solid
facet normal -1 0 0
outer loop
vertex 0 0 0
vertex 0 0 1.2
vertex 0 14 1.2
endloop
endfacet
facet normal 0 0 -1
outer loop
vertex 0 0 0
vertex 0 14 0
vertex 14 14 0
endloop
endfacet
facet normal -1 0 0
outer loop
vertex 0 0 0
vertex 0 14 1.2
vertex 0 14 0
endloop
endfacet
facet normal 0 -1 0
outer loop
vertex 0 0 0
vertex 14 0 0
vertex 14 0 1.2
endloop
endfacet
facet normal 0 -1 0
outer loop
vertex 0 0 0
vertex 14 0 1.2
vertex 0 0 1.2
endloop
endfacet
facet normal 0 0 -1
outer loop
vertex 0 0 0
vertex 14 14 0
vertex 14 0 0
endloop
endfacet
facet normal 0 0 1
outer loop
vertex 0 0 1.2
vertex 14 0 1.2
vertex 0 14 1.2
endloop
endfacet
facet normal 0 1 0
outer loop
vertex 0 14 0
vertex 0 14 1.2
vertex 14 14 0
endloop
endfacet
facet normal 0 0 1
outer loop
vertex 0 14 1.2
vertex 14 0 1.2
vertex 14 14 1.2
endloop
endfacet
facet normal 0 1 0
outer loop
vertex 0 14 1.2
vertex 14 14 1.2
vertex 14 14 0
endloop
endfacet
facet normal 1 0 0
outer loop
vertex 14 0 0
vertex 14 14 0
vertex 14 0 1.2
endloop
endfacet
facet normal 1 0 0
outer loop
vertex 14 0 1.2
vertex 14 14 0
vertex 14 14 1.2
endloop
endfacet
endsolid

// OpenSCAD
/* Warning, this is a very basic generator with a lot of approximation 
input data : [TFBGA, 4BB, 14x14x1.2mm, 289, , A, C04-21504A]
generated by com.zoubworld.electronics.cad.model3d.Basic
Date : Sun Feb 15 10:50:49 CET 2026
*/

//body
color("black")
translate([0,0,0])
cube([14.0,14.0,1.2], center=false);
